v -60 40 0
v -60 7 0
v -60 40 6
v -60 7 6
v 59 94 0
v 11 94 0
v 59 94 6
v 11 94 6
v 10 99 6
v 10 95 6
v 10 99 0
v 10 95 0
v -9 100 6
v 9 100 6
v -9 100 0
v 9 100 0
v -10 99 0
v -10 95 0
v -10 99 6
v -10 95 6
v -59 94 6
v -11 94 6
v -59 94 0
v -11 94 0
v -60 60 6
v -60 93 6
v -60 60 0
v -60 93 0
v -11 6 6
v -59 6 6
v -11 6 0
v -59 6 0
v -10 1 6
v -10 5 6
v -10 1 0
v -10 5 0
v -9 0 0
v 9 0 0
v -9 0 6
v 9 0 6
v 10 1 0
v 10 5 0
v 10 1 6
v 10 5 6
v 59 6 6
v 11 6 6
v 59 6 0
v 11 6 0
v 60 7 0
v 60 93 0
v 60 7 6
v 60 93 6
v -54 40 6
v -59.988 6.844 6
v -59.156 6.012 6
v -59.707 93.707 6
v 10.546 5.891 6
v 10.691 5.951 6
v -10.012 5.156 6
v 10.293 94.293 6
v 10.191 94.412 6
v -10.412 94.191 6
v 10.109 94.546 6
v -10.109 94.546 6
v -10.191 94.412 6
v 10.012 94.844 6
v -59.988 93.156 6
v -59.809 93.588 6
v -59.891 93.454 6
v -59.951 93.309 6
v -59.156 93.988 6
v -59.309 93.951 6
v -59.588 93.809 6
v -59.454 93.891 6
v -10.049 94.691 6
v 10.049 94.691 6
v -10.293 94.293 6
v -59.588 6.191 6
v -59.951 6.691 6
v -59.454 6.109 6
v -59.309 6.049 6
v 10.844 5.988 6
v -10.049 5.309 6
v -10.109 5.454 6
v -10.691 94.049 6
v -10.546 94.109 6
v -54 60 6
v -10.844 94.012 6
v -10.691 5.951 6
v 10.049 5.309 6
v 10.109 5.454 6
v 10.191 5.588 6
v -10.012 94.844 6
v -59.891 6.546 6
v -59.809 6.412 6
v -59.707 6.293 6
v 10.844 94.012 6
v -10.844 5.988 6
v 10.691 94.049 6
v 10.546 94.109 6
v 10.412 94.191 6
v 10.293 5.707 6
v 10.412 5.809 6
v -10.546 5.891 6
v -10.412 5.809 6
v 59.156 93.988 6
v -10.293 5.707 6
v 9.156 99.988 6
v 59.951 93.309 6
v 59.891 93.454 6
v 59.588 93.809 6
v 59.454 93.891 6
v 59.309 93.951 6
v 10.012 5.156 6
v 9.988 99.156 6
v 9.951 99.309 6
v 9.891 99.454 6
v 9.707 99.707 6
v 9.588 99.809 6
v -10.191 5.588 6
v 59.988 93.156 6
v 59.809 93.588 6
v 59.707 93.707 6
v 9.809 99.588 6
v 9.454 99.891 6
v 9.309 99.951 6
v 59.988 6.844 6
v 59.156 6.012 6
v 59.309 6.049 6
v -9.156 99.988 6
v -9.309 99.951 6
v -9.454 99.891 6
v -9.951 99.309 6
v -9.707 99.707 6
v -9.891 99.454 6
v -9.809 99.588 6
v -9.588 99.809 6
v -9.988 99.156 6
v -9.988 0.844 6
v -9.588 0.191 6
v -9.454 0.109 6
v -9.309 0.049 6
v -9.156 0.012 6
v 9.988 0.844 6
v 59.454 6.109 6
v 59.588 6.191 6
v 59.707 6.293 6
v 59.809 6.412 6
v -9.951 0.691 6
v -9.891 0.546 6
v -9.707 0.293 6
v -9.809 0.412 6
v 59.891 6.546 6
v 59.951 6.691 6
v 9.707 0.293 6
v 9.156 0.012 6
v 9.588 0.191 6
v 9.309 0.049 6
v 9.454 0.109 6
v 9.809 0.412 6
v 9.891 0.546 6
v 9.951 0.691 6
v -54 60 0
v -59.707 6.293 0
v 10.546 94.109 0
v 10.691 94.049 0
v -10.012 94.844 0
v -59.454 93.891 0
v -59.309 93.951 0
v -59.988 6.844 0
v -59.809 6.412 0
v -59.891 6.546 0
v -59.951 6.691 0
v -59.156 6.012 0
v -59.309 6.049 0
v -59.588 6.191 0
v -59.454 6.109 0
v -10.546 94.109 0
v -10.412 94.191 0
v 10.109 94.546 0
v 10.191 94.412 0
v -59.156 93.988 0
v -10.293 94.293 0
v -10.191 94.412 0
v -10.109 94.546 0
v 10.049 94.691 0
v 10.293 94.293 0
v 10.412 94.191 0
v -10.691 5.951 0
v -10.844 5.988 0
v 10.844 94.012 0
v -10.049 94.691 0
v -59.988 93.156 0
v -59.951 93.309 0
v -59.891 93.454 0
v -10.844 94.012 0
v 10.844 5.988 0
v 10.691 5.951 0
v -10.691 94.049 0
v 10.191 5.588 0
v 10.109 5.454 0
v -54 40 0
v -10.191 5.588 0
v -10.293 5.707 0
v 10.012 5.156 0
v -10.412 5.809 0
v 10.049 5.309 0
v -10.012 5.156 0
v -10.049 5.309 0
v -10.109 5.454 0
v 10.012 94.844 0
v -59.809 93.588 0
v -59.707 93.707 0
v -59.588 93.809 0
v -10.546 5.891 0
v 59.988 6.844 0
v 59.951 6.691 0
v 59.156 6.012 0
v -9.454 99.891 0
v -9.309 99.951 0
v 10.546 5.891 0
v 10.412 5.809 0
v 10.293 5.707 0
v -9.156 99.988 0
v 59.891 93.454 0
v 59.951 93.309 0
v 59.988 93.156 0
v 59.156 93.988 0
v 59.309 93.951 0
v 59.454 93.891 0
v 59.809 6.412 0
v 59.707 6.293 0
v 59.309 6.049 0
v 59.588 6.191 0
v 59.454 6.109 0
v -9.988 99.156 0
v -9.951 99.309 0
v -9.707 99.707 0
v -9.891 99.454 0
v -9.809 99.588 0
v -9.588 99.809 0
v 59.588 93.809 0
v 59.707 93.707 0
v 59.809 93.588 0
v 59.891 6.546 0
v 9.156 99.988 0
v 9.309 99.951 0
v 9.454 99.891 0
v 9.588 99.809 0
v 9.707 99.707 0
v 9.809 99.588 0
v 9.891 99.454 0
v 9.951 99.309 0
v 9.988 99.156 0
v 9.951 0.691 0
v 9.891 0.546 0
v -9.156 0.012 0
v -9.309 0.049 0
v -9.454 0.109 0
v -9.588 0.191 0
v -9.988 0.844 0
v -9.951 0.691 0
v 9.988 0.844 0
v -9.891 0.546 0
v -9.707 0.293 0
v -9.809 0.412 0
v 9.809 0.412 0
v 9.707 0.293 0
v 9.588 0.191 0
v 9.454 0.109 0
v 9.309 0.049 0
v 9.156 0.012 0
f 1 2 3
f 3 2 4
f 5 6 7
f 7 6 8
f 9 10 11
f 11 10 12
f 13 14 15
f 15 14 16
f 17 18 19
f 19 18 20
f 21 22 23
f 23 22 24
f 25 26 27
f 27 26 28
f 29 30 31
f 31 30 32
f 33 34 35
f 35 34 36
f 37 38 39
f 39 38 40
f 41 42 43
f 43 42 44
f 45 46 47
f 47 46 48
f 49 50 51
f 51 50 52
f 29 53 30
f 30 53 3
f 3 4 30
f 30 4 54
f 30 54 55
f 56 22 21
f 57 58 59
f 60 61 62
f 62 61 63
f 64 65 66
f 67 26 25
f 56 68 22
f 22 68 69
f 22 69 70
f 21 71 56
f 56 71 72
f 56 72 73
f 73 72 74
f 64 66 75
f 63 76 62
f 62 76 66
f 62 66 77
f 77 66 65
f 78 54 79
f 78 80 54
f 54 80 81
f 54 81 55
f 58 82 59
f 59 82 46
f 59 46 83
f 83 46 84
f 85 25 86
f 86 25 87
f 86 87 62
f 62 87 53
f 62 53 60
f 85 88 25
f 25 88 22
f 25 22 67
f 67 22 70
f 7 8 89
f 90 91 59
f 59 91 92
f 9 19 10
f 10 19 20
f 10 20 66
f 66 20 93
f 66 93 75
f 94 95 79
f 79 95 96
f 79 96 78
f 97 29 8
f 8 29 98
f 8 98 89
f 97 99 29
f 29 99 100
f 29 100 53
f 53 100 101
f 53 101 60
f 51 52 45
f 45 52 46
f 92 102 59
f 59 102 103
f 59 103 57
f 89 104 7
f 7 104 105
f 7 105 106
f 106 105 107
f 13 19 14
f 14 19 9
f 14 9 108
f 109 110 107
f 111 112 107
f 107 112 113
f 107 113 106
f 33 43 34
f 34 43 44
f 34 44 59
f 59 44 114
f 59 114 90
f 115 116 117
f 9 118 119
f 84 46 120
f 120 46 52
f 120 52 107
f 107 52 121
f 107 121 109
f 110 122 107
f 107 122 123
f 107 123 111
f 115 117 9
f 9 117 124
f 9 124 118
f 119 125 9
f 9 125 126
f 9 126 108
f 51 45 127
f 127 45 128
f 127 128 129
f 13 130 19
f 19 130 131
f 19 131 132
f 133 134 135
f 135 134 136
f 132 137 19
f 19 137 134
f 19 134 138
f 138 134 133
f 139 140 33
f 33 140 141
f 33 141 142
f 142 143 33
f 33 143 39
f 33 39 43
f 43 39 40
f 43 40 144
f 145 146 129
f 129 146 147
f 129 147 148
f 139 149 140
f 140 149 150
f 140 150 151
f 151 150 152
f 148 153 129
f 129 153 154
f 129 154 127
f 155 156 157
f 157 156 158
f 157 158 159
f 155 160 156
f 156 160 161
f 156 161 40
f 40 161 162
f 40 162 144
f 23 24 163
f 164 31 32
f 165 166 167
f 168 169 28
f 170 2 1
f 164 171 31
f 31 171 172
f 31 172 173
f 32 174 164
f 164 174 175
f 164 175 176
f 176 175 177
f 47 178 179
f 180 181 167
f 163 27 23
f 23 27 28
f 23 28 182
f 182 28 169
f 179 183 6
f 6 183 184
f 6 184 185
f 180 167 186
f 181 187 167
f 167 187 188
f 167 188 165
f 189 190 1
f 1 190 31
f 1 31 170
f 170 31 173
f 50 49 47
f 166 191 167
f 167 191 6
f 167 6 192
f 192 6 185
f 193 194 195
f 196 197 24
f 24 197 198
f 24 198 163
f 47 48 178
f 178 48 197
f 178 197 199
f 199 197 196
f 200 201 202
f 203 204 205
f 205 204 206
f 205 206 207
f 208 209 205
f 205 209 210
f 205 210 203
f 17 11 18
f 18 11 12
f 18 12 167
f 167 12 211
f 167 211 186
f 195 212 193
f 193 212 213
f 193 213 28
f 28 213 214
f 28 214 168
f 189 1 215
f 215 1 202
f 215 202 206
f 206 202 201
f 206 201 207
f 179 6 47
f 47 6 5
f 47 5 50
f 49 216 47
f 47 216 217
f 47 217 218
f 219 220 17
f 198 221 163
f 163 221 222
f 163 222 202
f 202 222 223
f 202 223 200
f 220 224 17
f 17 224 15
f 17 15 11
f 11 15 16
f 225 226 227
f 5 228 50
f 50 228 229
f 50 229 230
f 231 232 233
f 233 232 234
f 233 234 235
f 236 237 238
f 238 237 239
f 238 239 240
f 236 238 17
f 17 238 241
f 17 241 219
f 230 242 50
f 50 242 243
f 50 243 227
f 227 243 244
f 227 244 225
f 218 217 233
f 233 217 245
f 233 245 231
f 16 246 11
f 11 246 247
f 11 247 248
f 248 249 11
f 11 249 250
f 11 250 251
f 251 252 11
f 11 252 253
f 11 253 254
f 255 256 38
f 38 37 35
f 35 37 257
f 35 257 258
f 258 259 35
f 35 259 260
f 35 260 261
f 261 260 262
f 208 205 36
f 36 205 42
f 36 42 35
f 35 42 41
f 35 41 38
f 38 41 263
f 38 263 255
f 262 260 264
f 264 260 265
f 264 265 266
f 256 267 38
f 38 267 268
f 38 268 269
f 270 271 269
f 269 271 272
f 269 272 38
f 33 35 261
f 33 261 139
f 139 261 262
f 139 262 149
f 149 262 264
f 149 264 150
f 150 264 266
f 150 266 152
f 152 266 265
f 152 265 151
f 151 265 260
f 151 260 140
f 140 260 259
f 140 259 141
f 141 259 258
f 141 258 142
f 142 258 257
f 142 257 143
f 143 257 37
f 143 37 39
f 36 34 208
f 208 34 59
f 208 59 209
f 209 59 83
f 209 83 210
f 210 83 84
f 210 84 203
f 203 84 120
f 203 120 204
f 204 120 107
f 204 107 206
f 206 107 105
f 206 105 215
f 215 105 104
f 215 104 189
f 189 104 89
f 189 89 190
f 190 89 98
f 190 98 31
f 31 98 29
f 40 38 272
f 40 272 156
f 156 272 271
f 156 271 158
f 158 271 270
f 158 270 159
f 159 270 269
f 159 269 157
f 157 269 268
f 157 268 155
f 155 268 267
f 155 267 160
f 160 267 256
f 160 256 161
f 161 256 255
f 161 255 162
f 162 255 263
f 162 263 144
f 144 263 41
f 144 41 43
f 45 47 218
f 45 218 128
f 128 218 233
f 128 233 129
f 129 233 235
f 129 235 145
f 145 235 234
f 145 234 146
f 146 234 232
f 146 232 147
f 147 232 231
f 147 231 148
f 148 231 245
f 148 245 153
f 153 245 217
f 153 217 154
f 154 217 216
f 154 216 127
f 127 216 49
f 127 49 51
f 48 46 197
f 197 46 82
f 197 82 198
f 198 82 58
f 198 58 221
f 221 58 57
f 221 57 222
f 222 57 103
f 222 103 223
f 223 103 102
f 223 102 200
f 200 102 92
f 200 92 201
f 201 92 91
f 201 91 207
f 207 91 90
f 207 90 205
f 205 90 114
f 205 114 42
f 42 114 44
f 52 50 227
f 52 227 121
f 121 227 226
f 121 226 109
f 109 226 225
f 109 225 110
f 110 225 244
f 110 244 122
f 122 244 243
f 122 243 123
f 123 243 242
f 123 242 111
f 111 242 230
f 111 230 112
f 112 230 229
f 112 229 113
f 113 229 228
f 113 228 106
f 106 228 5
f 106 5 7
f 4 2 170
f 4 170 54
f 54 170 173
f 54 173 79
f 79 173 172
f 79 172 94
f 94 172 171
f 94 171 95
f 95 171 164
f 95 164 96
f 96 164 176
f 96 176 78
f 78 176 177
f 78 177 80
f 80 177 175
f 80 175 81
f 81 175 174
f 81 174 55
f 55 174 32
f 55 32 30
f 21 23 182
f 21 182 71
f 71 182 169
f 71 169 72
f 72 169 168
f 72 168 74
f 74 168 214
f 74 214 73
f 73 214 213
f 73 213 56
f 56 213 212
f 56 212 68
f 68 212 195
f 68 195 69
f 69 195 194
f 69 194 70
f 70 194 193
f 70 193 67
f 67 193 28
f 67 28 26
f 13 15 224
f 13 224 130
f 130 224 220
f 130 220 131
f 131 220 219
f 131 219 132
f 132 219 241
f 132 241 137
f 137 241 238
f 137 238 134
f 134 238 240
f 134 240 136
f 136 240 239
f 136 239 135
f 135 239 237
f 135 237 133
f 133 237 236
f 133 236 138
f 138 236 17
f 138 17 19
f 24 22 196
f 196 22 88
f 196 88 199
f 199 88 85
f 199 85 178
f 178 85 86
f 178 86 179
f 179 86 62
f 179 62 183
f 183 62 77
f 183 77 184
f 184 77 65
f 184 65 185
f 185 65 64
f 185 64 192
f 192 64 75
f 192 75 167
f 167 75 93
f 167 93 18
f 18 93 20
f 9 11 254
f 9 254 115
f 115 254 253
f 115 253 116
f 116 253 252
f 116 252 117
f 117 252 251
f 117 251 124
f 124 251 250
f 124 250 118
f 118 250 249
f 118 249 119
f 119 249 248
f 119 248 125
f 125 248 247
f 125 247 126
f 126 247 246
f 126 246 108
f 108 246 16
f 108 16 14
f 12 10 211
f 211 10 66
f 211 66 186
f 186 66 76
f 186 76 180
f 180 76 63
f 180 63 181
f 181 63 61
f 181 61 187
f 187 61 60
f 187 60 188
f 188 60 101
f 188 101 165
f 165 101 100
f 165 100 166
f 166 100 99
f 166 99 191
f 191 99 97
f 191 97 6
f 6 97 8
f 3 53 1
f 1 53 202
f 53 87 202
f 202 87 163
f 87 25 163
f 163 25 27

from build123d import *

# Parameters (mm, degrees)
BOSS_EXTRUDE1_DEPTH = 6
FILLET1_R           = 1
SKETCH2_W           = 6
SKETCH2_H           = 20
CUT_EXTRUDE1_DEPTH  = 117.773284616


with BuildPart() as part:
    # Sketch1 → Boss-Extrude1 (new body)
    with BuildSketch(Plane.XY):
        Polygon((-10, 0), (10, 0), (10, 6), (60, 6), (60, 94), (10, 94), (10, 100), (-10, 100), (-10, 94), (-60, 94), (-60, 6), (-10, 6), align=None)
    extrude(amount=BOSS_EXTRUDE1_DEPTH)

    # Fillet1
    fillet1_edges = [part.edges().sort_by_distance(p)[0] for p in [
        (60, 94, 3),
        (60, 6, 3),
        (10, 6, 3),
        (10, 0, 3),
        (-10, 0, 3),
        (-10, 6, 3),
        (-60, 6, 3),
        (-60, 94, 3),
        (-10, 94, 3),
        (-10, 100, 3),
        (10, 100, 3),
        (10, 94, 3),
    ]]
    fillet(fillet1_edges, radius=FILLET1_R)

    # Sketch2 → Cut-Extrude1 (cut, through all)
    with BuildSketch(Plane(origin=(0, 0, 0), x_dir=(-1, 0, 0), z_dir=(0, 0, -1))):
        with Locations((57, 50)):
            Rectangle(SKETCH2_W, SKETCH2_H)
    extrude(amount=-CUT_EXTRUDE1_DEPTH, mode=Mode.SUBTRACT)


solid = part.part
